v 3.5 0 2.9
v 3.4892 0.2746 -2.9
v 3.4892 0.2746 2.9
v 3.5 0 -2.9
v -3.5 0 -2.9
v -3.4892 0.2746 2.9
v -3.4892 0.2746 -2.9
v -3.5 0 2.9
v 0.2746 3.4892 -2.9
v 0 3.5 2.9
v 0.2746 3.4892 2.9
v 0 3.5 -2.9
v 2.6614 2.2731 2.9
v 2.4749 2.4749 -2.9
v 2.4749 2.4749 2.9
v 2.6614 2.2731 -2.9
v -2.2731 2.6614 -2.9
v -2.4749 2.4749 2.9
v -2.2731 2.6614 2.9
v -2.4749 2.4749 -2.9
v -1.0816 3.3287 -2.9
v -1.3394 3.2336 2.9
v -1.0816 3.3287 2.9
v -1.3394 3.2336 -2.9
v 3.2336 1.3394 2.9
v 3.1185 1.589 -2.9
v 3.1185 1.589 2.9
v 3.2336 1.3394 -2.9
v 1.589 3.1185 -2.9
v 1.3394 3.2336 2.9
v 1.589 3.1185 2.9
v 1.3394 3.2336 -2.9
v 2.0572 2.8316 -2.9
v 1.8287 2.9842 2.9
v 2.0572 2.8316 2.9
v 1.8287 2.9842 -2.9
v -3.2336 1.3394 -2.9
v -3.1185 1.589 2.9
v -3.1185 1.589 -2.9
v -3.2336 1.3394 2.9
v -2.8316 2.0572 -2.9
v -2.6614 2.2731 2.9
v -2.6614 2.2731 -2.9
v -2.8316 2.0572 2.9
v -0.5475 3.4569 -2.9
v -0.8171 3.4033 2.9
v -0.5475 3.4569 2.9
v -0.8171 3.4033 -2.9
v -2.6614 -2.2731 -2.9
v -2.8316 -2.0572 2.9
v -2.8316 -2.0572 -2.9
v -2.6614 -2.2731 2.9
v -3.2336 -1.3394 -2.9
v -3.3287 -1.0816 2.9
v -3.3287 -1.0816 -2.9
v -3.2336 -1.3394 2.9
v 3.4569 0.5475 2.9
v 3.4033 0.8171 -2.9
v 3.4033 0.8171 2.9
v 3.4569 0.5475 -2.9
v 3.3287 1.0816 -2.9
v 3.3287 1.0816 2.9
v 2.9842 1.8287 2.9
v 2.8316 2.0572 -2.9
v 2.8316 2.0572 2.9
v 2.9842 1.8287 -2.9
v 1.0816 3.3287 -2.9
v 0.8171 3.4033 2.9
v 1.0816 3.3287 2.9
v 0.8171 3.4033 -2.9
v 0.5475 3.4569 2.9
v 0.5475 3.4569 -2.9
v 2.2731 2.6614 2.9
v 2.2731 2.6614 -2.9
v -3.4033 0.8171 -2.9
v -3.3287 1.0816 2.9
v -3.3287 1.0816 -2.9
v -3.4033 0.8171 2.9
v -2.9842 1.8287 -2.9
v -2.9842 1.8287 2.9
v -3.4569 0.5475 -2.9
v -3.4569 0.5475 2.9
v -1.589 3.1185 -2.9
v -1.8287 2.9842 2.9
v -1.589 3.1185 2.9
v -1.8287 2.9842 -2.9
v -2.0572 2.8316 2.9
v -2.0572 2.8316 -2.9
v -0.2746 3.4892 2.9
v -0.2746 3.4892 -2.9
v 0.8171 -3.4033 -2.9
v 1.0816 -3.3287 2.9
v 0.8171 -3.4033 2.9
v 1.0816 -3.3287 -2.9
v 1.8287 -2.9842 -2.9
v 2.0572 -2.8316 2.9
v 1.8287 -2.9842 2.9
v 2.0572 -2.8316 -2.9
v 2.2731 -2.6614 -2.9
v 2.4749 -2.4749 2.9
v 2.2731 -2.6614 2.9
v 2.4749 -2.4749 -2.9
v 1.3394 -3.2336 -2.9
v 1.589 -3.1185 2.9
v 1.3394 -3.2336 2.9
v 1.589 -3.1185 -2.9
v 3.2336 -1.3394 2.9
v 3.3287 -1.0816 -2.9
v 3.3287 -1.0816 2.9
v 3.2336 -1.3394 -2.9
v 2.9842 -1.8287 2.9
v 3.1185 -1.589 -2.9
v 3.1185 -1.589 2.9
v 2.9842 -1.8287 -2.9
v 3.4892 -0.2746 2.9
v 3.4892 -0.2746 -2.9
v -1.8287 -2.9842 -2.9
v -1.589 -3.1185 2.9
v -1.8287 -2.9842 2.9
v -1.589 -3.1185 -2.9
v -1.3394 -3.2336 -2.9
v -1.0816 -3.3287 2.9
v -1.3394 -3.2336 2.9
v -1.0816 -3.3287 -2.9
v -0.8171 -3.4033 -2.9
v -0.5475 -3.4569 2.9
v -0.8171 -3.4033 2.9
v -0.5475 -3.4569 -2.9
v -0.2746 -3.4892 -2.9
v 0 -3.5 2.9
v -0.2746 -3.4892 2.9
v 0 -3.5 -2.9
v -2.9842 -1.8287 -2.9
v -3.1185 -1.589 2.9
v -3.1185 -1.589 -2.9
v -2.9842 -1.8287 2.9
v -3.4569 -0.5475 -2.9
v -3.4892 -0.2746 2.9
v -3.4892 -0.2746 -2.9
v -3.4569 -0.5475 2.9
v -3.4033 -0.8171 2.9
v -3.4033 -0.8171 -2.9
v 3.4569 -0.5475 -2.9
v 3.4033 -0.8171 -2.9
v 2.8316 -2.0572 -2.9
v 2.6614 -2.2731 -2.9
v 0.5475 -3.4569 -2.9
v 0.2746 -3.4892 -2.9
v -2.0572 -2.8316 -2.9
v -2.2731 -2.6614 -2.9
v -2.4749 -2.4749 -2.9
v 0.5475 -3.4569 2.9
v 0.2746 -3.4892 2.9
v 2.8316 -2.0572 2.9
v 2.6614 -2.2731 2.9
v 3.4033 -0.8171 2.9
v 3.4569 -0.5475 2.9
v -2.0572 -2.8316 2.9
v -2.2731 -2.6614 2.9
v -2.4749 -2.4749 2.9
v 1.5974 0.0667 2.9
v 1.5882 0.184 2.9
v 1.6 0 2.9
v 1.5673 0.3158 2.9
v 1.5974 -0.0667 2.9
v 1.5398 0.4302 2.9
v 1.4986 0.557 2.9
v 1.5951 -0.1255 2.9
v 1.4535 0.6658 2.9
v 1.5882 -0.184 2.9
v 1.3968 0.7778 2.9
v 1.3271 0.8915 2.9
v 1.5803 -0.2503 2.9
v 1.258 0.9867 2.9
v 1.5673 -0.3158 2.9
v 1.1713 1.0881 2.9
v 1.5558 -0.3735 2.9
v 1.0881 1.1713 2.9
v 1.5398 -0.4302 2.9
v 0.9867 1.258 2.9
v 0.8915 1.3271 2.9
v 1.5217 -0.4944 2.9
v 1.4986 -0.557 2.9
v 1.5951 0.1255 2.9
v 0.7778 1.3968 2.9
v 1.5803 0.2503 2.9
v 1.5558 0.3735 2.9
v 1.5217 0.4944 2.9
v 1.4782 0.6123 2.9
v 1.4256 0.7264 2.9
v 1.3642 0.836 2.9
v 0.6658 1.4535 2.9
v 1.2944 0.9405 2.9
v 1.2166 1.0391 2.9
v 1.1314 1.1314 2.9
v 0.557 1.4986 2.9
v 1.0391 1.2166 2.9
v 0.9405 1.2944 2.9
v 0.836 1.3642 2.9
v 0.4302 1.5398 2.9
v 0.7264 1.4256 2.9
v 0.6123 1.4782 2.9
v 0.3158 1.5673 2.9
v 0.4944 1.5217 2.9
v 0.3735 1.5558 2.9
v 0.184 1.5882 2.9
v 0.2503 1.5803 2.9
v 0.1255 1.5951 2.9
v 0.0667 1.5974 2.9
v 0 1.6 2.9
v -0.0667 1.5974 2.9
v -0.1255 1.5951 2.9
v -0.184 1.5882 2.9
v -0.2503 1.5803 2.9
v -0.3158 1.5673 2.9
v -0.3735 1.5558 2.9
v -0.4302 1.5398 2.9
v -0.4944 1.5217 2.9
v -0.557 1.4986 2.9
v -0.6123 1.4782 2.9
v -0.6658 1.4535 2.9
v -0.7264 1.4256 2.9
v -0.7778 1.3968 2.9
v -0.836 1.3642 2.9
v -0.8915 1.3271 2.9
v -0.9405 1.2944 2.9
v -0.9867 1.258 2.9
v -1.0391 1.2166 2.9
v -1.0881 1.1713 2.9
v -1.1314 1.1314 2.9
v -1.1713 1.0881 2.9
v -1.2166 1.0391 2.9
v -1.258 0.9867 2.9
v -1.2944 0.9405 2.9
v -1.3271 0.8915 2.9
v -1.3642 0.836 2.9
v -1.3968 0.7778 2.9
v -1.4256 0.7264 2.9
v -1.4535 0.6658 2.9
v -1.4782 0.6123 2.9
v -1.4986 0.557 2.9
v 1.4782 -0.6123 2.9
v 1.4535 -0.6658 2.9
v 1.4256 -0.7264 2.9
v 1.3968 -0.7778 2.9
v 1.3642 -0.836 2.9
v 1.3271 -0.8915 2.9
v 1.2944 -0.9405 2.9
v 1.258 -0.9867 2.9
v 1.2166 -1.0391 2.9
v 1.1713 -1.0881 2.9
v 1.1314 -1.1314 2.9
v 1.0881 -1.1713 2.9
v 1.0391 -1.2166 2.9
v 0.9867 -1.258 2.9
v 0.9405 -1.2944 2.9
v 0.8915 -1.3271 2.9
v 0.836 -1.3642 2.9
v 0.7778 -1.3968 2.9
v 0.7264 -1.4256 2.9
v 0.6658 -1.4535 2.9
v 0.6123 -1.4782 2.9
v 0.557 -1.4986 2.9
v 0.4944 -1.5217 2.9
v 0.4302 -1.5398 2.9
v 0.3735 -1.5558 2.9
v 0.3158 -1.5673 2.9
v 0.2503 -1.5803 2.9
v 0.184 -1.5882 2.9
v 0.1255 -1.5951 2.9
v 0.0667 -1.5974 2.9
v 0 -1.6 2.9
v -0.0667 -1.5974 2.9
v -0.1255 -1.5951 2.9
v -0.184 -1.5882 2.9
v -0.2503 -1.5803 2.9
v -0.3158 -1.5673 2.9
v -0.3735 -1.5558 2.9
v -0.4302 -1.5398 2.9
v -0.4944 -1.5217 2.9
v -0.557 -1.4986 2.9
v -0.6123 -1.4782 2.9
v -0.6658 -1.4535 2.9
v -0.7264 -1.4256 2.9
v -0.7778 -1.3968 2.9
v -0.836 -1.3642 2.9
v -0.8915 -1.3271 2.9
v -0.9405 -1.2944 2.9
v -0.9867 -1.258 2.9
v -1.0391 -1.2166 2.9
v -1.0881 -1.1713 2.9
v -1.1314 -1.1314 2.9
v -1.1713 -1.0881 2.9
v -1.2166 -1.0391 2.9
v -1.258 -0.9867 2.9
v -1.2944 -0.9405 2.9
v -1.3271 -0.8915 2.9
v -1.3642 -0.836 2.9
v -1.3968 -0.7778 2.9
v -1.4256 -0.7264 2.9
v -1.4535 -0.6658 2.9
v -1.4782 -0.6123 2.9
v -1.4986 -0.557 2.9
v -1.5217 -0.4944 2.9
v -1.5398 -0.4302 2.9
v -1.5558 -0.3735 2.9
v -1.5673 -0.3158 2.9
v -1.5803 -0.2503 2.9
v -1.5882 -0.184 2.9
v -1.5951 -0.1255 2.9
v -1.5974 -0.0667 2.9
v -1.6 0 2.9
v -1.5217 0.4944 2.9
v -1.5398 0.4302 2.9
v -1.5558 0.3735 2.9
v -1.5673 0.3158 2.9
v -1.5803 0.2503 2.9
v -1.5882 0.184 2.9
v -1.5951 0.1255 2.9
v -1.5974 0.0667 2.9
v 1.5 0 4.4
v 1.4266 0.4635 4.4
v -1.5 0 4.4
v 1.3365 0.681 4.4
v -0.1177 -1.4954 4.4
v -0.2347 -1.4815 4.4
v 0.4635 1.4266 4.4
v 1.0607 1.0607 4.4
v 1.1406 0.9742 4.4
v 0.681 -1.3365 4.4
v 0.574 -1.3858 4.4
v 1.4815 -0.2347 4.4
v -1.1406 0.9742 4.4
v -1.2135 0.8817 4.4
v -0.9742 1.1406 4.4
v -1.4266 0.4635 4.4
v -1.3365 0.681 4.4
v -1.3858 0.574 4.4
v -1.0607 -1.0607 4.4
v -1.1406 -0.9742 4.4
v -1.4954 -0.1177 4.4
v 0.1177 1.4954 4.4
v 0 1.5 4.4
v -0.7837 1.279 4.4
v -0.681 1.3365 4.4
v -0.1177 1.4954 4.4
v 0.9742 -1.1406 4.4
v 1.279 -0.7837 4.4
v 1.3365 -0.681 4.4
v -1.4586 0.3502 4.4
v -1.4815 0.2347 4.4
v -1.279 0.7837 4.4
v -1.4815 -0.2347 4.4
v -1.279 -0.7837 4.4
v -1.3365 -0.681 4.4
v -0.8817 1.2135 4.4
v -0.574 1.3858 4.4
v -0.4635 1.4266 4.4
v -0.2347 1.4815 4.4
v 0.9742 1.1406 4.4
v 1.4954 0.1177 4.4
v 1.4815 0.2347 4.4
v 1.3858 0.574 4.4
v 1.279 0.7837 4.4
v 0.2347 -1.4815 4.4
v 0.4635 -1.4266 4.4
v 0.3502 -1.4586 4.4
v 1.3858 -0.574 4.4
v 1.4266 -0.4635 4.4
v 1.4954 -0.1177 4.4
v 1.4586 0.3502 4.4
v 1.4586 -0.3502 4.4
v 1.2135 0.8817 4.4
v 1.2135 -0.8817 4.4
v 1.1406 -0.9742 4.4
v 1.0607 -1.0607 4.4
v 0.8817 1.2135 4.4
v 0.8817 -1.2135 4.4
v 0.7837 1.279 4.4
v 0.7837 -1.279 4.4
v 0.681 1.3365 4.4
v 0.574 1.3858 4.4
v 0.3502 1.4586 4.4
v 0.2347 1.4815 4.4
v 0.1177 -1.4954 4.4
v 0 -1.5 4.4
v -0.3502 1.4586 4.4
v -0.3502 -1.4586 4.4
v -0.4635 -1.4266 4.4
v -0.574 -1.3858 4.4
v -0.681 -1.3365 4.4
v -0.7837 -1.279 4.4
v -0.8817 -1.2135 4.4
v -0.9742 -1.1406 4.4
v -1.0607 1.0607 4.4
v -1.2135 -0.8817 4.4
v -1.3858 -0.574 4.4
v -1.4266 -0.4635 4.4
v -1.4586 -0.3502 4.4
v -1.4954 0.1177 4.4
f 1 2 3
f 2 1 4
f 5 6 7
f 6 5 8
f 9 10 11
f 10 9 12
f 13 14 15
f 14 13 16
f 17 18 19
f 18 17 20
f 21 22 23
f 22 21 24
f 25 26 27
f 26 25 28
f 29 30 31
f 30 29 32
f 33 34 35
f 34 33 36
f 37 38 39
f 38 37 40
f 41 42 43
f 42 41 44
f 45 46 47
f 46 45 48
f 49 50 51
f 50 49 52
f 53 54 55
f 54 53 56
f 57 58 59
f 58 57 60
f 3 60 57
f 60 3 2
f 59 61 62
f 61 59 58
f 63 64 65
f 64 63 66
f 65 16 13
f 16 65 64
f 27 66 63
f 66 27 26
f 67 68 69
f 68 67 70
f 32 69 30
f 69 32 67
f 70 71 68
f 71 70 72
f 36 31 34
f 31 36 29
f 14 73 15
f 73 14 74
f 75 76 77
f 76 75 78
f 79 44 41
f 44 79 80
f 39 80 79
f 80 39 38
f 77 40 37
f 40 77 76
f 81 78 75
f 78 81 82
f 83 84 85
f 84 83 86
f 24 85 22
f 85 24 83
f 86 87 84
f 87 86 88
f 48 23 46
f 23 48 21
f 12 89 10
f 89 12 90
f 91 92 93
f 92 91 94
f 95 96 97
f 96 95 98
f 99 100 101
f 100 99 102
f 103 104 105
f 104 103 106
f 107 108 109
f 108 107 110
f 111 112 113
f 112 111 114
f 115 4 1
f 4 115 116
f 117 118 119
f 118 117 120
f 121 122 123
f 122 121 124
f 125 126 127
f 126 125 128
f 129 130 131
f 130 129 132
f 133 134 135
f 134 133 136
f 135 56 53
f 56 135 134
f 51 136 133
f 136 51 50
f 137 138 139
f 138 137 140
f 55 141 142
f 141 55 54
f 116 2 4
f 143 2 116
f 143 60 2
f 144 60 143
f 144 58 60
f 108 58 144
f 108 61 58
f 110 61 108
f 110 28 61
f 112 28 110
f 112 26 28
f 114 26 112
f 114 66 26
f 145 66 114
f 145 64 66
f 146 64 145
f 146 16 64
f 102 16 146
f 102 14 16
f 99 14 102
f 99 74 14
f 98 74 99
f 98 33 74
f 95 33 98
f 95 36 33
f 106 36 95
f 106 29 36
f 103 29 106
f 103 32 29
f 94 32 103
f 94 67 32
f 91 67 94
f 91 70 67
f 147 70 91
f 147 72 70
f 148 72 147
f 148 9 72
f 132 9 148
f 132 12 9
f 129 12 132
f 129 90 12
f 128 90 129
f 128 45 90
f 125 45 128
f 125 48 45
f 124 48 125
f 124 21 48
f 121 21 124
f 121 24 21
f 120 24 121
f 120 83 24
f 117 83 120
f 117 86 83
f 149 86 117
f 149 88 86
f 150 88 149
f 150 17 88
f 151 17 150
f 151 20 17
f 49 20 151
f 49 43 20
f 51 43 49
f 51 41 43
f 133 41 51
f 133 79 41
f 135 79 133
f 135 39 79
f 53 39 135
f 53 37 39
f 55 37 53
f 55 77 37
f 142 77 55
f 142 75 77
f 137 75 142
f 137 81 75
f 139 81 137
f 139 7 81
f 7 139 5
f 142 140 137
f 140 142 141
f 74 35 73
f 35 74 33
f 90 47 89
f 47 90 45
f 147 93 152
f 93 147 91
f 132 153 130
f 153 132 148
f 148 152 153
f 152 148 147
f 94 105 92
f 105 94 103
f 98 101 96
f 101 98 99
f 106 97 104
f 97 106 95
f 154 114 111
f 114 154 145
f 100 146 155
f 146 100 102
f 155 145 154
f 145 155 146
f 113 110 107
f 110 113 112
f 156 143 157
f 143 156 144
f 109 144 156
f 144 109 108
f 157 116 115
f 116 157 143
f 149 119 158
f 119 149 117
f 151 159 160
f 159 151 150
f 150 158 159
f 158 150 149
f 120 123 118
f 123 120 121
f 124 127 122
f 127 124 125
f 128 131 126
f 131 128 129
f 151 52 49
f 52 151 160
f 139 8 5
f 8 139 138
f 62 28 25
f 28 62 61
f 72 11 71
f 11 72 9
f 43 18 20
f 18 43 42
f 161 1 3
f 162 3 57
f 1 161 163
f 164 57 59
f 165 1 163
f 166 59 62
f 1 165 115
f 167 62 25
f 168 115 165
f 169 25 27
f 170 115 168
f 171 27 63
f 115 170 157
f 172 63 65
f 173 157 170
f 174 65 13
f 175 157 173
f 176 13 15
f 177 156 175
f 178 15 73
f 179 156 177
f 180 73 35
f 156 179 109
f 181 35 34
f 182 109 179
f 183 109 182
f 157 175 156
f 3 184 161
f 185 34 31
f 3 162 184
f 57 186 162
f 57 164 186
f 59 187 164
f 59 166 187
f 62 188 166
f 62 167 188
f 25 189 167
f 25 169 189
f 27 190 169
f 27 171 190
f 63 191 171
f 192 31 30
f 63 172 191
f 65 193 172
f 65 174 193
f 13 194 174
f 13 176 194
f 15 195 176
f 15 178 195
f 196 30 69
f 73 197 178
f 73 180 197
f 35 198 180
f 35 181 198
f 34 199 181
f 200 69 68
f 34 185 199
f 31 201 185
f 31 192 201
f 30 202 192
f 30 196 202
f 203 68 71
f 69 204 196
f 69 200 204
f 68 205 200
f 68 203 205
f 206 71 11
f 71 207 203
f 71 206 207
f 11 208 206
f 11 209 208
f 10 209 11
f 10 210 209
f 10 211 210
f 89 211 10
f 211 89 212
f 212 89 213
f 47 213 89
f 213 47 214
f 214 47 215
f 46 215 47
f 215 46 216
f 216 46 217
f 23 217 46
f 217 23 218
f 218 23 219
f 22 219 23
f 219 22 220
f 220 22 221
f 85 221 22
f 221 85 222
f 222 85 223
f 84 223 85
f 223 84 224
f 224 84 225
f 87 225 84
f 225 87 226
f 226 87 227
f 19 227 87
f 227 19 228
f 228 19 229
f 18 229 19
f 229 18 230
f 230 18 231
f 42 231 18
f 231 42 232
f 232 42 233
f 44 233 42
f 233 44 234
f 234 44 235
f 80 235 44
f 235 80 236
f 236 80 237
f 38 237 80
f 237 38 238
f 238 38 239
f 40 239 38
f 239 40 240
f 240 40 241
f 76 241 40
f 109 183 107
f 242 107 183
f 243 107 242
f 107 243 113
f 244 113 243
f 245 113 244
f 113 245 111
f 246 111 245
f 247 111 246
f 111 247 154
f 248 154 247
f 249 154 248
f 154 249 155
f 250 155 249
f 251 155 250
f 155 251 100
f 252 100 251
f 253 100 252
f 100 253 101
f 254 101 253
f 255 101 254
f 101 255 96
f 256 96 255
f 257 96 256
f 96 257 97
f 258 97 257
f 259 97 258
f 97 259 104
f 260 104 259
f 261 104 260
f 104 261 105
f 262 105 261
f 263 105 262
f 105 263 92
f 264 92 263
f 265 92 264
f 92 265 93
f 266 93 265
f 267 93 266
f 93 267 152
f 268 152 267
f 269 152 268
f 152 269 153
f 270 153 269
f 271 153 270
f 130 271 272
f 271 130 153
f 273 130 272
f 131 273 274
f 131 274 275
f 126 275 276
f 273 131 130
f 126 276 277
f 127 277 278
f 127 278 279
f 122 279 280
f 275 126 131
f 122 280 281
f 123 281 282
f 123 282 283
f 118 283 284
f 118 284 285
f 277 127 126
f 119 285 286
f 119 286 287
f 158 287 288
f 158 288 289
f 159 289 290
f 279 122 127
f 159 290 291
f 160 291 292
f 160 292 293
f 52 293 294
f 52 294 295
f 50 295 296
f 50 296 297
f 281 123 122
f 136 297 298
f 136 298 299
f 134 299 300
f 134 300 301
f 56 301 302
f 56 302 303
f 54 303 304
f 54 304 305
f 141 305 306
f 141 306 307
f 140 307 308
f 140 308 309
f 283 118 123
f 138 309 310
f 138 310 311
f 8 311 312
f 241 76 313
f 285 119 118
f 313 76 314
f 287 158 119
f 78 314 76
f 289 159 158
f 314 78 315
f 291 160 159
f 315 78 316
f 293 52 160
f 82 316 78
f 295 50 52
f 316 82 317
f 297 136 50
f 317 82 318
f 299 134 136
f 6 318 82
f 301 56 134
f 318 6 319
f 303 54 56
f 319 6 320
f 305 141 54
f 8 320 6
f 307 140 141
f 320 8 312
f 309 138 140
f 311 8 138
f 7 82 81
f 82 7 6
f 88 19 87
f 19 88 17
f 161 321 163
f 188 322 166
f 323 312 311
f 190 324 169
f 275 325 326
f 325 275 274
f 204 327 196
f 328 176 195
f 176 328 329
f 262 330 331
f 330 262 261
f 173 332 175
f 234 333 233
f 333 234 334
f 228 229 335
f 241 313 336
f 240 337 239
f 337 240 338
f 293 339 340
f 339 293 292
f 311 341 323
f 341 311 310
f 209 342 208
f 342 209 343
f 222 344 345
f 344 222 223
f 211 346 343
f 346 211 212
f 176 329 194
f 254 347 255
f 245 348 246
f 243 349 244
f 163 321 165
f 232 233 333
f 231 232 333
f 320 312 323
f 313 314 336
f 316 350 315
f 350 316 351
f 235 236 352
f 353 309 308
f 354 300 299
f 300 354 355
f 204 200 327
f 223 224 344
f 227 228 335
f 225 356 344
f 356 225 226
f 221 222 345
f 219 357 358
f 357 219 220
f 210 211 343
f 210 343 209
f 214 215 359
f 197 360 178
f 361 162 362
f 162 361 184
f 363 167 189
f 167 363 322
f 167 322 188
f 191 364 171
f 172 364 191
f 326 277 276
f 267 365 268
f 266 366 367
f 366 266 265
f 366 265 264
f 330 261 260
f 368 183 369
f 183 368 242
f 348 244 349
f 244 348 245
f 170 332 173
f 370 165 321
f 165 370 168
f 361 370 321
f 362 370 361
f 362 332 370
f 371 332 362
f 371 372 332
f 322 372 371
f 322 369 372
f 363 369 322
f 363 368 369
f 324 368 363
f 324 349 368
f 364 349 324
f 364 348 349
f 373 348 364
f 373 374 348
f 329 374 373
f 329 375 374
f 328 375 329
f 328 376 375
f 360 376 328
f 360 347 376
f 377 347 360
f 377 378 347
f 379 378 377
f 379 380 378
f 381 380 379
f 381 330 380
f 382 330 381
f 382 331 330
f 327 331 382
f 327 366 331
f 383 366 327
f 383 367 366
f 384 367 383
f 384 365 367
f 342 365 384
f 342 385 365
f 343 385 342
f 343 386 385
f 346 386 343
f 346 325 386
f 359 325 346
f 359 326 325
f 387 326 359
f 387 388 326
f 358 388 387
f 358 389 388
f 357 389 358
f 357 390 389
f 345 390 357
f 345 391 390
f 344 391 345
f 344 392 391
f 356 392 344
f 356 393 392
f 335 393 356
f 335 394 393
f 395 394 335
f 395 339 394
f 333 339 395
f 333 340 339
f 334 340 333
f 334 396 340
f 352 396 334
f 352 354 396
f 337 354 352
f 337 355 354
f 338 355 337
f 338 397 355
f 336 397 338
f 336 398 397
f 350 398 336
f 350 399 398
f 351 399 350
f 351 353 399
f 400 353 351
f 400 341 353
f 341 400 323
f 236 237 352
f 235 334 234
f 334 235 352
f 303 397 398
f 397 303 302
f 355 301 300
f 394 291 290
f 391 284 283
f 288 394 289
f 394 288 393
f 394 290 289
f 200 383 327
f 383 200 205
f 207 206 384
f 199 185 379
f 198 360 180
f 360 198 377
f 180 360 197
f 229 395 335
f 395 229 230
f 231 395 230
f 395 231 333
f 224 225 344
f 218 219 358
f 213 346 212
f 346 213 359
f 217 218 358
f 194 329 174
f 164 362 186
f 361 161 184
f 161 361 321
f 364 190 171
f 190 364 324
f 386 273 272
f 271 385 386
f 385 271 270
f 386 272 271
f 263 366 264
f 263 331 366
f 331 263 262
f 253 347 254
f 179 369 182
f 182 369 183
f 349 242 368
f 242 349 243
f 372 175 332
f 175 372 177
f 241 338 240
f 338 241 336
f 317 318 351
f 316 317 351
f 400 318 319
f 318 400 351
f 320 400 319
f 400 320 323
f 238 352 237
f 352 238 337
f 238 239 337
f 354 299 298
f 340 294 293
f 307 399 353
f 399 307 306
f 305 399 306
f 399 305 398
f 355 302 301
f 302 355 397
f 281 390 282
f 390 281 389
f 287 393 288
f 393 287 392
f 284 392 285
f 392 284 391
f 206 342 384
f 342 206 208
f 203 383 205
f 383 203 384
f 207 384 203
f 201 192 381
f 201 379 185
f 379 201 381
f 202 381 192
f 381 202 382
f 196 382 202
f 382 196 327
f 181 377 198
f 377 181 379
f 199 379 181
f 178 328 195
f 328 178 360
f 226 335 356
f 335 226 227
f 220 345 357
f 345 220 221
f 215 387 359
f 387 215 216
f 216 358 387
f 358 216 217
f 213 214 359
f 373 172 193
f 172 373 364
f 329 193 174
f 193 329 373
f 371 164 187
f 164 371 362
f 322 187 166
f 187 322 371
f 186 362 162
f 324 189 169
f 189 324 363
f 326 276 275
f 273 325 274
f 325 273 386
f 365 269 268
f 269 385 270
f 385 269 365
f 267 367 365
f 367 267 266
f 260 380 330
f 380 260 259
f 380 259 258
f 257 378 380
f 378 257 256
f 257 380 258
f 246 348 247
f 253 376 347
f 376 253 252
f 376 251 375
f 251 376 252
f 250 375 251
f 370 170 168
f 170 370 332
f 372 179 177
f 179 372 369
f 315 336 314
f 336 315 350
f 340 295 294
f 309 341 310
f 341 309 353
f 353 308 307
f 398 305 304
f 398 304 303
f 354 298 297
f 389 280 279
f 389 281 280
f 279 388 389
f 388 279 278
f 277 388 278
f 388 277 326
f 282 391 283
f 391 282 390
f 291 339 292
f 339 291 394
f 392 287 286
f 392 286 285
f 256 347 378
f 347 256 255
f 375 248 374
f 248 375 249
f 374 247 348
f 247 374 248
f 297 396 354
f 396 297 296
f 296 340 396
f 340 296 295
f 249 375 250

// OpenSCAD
//Platinen Pin 

$fn=80;
Rgr = 3.5;  //Radius PIN 
R1kl = 1.7; //Radius 1 Stift
R2kl = 1.5; //Radius 2 Stift
Sh = 5.8;     //Sockelhöhe

color("WhiteSmoke")
cylinder(h = Sh, r1=Rgr , r2=Rgr , center = true); //Sockel
translate(v = [0, 0, Sh/2])
color("WhiteSmoke")
cylinder(h = 3, r1 = R1kl, r2 = R2kl, center = true); //Pin
